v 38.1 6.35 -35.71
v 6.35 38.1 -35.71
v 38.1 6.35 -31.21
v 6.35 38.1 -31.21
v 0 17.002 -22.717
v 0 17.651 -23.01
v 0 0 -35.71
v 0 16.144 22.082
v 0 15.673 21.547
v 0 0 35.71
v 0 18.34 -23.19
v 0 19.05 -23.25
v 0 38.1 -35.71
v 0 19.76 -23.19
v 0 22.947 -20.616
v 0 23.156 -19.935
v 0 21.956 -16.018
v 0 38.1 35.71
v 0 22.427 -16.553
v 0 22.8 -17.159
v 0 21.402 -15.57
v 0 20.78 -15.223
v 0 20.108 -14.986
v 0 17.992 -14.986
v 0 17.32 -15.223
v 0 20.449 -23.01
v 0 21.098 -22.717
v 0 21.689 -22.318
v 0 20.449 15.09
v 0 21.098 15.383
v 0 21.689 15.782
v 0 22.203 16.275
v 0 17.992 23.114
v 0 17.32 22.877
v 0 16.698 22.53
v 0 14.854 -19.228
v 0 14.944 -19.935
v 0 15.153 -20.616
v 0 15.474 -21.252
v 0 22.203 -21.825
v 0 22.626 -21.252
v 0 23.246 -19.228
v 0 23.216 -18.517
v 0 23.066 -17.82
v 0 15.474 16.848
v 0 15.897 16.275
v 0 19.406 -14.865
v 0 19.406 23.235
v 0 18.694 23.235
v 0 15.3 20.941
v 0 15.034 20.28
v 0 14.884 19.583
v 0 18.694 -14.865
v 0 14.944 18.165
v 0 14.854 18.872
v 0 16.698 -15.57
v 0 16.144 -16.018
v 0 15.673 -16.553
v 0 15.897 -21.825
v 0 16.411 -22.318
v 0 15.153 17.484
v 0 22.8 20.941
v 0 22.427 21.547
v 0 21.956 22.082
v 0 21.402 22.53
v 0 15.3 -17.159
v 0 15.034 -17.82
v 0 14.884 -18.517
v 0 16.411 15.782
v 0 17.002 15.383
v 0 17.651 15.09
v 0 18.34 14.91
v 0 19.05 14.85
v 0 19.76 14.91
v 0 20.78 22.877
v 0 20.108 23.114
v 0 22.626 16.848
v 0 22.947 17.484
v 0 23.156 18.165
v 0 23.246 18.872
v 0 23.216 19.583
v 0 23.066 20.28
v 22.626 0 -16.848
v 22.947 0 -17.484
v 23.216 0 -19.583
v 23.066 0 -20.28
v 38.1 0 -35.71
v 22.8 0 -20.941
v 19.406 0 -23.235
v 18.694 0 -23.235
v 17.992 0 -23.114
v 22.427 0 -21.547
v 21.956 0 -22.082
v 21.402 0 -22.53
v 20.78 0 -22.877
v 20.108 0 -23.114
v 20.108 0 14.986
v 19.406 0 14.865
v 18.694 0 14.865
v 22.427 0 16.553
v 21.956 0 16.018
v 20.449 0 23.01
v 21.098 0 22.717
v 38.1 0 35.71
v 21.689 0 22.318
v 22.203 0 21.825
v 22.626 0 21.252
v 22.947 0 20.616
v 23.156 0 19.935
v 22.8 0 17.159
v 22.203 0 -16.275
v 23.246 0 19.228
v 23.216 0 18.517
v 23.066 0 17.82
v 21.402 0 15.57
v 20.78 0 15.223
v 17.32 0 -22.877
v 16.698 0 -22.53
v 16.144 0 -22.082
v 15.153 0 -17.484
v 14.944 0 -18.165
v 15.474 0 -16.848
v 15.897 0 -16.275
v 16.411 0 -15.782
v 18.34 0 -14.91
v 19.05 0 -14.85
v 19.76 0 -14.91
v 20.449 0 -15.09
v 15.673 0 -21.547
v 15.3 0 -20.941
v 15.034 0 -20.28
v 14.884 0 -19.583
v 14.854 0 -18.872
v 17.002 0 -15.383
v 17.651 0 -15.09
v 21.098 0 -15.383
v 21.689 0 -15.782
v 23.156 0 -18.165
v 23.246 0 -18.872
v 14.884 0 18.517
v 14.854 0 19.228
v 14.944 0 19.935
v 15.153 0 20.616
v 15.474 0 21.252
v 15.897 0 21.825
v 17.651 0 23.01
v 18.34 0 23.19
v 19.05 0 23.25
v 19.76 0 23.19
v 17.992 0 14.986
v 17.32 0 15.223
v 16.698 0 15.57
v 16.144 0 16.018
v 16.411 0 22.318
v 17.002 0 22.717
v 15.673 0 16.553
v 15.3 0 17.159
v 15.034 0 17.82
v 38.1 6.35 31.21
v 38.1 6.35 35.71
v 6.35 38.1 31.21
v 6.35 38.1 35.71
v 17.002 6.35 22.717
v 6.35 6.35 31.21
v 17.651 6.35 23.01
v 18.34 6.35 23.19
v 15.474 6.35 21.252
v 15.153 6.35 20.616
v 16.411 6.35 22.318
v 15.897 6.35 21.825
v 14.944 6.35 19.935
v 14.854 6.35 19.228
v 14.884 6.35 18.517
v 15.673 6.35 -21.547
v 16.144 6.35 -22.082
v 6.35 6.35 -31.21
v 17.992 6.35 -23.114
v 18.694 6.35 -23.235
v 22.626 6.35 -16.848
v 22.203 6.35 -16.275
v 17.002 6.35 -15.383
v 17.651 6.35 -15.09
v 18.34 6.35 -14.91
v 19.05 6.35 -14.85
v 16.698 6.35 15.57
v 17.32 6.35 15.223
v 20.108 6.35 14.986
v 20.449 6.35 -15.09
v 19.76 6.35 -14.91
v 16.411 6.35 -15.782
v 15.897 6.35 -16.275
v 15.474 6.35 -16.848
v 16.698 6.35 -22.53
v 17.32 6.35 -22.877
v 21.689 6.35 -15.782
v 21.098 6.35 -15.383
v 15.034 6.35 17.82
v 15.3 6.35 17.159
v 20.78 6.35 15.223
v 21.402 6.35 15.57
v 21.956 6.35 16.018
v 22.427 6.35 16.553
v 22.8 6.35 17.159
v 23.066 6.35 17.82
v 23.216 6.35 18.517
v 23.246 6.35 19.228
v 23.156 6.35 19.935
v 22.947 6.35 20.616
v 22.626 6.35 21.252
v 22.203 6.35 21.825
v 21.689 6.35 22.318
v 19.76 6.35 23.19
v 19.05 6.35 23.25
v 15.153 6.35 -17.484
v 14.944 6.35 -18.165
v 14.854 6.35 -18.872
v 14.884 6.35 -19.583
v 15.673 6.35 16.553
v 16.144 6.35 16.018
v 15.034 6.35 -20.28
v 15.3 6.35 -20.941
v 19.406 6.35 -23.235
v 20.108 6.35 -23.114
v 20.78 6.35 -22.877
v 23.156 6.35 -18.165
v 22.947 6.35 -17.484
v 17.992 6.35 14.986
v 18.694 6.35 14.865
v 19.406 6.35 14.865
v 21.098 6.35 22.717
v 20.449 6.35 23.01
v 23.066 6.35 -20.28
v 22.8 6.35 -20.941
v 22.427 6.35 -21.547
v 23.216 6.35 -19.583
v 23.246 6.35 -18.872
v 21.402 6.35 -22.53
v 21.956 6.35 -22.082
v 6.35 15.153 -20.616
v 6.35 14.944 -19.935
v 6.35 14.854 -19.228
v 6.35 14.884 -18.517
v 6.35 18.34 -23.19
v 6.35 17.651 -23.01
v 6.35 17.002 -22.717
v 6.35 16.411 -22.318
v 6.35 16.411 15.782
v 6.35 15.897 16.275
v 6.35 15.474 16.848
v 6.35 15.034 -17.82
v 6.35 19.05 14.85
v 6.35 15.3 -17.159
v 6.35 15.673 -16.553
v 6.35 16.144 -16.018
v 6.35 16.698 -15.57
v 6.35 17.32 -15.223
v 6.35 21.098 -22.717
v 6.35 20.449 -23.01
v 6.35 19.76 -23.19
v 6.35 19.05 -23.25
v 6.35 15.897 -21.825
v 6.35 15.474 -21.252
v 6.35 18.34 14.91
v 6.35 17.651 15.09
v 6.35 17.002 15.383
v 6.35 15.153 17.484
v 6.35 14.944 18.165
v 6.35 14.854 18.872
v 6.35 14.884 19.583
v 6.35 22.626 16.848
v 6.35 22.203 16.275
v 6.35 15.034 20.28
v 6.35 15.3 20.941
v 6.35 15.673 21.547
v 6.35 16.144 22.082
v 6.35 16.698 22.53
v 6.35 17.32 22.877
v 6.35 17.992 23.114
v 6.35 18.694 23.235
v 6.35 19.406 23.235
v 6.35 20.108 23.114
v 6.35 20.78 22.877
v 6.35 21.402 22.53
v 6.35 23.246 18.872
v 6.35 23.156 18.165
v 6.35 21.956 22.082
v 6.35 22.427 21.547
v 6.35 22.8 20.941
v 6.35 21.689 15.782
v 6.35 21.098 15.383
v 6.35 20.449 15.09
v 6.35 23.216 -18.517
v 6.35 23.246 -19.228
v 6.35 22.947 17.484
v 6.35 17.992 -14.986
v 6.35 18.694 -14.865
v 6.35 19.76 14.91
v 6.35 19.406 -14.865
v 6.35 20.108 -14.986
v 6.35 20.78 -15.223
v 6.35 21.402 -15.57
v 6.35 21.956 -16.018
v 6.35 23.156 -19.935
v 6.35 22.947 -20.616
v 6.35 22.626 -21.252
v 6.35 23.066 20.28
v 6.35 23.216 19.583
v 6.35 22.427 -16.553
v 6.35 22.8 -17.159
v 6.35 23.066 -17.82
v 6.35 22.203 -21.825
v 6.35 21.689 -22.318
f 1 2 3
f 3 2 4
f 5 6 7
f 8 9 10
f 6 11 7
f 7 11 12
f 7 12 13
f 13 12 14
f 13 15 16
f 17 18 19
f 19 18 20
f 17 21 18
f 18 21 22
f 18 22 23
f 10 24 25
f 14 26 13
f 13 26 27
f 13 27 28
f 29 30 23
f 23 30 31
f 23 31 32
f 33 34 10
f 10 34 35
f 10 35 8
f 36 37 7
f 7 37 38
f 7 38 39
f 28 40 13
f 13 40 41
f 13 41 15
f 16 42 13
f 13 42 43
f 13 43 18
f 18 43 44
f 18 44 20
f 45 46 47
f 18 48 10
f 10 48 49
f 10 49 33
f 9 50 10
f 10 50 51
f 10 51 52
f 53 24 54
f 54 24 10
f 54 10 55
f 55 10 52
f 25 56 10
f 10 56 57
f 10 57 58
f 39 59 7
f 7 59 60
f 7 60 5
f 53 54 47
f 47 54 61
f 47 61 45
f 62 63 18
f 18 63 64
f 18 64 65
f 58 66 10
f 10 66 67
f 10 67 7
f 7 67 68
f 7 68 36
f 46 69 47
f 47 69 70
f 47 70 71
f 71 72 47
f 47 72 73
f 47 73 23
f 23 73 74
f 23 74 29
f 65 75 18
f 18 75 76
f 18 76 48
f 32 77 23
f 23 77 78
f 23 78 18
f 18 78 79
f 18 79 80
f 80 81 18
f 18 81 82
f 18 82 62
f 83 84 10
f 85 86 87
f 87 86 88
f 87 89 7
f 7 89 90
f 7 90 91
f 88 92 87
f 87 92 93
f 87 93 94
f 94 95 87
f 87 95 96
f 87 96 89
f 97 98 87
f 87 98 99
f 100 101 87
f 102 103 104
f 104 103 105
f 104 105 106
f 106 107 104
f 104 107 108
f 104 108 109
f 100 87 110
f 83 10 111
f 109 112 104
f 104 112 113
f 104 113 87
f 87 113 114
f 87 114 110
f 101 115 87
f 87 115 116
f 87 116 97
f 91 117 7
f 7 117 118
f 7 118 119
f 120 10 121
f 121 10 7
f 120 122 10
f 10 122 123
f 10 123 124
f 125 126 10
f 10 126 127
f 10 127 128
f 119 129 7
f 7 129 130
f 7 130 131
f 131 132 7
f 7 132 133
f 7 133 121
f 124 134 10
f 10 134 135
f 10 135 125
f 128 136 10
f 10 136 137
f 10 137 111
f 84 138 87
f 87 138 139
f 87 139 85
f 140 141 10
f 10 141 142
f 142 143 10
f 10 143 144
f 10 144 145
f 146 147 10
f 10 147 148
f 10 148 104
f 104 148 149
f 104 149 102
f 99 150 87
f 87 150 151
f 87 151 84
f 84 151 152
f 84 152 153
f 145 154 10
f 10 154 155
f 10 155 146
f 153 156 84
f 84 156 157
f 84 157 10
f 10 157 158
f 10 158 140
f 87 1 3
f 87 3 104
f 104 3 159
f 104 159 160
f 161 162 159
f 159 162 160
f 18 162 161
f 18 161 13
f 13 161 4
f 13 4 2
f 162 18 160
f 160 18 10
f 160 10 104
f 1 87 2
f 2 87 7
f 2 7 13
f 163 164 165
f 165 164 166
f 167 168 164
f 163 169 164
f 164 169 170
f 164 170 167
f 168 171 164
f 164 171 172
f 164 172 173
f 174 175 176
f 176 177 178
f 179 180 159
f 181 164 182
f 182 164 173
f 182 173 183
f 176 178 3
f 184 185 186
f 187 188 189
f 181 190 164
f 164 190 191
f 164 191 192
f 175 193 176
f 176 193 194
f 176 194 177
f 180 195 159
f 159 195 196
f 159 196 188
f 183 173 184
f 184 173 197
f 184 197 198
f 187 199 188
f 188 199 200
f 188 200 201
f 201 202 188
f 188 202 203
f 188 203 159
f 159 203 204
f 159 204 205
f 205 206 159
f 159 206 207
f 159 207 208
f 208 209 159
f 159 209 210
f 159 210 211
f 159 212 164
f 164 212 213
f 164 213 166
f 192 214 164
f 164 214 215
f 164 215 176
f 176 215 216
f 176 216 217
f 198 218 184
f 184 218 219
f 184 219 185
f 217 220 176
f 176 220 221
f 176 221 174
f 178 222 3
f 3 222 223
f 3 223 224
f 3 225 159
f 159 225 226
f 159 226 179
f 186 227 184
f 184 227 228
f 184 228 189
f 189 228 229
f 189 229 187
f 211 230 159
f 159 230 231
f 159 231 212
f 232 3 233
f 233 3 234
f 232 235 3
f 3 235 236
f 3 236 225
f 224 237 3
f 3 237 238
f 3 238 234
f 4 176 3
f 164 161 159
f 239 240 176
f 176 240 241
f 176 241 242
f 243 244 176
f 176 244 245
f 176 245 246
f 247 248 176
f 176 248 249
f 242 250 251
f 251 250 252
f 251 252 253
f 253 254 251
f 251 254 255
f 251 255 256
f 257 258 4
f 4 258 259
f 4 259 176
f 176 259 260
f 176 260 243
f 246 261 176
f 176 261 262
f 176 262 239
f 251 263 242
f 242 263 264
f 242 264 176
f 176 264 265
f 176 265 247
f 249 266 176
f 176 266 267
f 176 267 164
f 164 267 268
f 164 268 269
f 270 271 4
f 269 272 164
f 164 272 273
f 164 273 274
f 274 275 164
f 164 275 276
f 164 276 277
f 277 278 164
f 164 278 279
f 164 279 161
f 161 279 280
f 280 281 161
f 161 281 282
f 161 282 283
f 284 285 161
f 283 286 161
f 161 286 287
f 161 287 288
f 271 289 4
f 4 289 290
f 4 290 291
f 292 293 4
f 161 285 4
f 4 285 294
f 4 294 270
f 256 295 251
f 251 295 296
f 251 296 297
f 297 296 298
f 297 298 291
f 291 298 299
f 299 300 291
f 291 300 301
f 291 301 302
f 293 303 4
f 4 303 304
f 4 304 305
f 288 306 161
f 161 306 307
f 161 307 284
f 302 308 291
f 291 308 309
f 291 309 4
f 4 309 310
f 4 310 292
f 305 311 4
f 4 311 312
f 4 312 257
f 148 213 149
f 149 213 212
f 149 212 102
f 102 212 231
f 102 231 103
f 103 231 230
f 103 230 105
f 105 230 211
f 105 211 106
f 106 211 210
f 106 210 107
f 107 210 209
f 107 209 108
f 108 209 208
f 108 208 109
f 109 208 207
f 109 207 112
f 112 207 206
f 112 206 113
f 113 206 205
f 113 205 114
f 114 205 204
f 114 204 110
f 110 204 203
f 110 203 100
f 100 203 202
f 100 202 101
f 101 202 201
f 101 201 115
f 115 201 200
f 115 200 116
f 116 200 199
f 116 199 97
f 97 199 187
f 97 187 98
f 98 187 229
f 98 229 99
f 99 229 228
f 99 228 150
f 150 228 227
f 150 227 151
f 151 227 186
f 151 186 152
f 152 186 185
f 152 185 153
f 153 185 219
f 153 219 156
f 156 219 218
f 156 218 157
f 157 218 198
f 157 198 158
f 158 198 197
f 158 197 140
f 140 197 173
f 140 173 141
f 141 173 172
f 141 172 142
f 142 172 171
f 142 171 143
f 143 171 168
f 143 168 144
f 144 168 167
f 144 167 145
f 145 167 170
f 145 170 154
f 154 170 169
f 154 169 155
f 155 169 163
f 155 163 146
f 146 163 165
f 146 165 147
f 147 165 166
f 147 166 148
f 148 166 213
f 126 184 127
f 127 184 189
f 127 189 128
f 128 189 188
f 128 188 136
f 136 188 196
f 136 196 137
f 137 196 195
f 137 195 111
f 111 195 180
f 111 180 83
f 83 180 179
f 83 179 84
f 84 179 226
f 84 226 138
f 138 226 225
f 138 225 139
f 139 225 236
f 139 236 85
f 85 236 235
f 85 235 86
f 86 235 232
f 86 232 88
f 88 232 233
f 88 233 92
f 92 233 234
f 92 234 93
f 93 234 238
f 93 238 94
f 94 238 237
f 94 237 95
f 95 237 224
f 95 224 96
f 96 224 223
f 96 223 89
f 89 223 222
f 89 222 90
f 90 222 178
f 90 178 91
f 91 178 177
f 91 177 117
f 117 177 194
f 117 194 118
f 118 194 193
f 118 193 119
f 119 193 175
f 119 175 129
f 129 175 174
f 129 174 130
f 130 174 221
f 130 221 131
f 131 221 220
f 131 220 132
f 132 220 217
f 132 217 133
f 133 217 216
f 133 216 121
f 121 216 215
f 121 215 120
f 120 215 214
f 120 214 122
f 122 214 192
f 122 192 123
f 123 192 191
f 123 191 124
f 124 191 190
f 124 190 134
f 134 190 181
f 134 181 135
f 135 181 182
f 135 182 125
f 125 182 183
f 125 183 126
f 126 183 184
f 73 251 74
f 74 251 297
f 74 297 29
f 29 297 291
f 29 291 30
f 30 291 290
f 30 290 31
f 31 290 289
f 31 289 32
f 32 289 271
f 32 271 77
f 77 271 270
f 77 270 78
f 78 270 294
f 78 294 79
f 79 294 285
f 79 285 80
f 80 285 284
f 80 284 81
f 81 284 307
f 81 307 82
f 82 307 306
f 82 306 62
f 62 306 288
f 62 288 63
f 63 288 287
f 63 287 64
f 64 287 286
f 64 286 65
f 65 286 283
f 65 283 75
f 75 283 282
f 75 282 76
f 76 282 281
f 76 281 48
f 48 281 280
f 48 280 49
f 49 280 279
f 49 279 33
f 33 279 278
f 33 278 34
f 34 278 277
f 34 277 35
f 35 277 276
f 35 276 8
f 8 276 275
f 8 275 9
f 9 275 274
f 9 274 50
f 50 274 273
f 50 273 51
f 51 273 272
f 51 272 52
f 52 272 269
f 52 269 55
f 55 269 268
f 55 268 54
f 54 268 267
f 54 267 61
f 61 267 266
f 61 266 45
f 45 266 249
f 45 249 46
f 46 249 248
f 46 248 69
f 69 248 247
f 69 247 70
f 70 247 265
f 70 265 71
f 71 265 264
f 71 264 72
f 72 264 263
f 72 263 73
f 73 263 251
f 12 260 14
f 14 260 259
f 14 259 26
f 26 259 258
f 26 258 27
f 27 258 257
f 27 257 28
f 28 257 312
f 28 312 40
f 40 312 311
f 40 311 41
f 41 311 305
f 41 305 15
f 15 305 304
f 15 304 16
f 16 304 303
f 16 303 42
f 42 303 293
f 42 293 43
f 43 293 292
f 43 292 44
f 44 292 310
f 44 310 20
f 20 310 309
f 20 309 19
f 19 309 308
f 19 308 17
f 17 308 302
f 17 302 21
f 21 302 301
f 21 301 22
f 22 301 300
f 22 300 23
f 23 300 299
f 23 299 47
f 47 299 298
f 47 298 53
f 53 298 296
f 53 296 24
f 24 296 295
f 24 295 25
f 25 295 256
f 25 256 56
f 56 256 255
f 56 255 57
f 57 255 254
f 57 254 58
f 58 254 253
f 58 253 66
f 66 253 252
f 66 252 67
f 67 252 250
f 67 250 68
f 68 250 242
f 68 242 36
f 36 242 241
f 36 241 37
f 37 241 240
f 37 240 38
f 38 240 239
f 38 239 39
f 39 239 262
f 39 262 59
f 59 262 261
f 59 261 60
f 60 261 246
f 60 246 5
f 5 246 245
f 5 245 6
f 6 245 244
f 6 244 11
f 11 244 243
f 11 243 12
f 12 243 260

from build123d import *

# Parameters (mm, degrees)
BODY_DEPTH   = 71.42
POCKET_DEPTH = 62.42
SKETCH3_R    = 4.2
HOLESX_DEPTH = 6.35
SKETCH4_R    = 4.2
HOLESY_DEPTH = 6.35


with BuildPart() as part:
    # Sketch1 → Body (new body)
    with BuildSketch(Plane.XY.offset(-35.71)):
        Polygon((0, 0), (38.1, 0), (38.1, 6.35), (6.35, 38.1), (0, 38.1), align=None)
    extrude(amount=BODY_DEPTH)

    # Sketch2 → Pocket (cut)
    with BuildSketch(Plane.XY.offset(31.21)):
        Polygon((6.35, 6.35), (48.1, 6.35), (6.35, 48.1), align=None)
    extrude(amount=-POCKET_DEPTH, mode=Mode.SUBTRACT)

    # Sketch3 → HolesX (cut)
    with BuildSketch(Plane(origin=(0, 6.35, 0), x_dir=(1, 0, 0), z_dir=(0, 1, 0))):
        with Locations(Location((19.05, 19.05, 0), (0, 0, 270))):
            Circle(SKETCH3_R)
        with Locations(Location((19.05, -19.05, 0), (0, 0, 270))):
            Circle(SKETCH3_R)
    extrude(amount=-HOLESX_DEPTH, mode=Mode.SUBTRACT)

    # Sketch4 → HolesY (cut)
    with BuildSketch(Plane(origin=(6.35, 0, 0), x_dir=(0, 0, -1), z_dir=(1, 0, 0))):
        with Locations((19.05, 19.05)):
            Circle(SKETCH4_R)
        with Locations((-19.05, 19.05)):
            Circle(SKETCH4_R)
    extrude(amount=-HOLESY_DEPTH, mode=Mode.SUBTRACT)


solid = part.part
